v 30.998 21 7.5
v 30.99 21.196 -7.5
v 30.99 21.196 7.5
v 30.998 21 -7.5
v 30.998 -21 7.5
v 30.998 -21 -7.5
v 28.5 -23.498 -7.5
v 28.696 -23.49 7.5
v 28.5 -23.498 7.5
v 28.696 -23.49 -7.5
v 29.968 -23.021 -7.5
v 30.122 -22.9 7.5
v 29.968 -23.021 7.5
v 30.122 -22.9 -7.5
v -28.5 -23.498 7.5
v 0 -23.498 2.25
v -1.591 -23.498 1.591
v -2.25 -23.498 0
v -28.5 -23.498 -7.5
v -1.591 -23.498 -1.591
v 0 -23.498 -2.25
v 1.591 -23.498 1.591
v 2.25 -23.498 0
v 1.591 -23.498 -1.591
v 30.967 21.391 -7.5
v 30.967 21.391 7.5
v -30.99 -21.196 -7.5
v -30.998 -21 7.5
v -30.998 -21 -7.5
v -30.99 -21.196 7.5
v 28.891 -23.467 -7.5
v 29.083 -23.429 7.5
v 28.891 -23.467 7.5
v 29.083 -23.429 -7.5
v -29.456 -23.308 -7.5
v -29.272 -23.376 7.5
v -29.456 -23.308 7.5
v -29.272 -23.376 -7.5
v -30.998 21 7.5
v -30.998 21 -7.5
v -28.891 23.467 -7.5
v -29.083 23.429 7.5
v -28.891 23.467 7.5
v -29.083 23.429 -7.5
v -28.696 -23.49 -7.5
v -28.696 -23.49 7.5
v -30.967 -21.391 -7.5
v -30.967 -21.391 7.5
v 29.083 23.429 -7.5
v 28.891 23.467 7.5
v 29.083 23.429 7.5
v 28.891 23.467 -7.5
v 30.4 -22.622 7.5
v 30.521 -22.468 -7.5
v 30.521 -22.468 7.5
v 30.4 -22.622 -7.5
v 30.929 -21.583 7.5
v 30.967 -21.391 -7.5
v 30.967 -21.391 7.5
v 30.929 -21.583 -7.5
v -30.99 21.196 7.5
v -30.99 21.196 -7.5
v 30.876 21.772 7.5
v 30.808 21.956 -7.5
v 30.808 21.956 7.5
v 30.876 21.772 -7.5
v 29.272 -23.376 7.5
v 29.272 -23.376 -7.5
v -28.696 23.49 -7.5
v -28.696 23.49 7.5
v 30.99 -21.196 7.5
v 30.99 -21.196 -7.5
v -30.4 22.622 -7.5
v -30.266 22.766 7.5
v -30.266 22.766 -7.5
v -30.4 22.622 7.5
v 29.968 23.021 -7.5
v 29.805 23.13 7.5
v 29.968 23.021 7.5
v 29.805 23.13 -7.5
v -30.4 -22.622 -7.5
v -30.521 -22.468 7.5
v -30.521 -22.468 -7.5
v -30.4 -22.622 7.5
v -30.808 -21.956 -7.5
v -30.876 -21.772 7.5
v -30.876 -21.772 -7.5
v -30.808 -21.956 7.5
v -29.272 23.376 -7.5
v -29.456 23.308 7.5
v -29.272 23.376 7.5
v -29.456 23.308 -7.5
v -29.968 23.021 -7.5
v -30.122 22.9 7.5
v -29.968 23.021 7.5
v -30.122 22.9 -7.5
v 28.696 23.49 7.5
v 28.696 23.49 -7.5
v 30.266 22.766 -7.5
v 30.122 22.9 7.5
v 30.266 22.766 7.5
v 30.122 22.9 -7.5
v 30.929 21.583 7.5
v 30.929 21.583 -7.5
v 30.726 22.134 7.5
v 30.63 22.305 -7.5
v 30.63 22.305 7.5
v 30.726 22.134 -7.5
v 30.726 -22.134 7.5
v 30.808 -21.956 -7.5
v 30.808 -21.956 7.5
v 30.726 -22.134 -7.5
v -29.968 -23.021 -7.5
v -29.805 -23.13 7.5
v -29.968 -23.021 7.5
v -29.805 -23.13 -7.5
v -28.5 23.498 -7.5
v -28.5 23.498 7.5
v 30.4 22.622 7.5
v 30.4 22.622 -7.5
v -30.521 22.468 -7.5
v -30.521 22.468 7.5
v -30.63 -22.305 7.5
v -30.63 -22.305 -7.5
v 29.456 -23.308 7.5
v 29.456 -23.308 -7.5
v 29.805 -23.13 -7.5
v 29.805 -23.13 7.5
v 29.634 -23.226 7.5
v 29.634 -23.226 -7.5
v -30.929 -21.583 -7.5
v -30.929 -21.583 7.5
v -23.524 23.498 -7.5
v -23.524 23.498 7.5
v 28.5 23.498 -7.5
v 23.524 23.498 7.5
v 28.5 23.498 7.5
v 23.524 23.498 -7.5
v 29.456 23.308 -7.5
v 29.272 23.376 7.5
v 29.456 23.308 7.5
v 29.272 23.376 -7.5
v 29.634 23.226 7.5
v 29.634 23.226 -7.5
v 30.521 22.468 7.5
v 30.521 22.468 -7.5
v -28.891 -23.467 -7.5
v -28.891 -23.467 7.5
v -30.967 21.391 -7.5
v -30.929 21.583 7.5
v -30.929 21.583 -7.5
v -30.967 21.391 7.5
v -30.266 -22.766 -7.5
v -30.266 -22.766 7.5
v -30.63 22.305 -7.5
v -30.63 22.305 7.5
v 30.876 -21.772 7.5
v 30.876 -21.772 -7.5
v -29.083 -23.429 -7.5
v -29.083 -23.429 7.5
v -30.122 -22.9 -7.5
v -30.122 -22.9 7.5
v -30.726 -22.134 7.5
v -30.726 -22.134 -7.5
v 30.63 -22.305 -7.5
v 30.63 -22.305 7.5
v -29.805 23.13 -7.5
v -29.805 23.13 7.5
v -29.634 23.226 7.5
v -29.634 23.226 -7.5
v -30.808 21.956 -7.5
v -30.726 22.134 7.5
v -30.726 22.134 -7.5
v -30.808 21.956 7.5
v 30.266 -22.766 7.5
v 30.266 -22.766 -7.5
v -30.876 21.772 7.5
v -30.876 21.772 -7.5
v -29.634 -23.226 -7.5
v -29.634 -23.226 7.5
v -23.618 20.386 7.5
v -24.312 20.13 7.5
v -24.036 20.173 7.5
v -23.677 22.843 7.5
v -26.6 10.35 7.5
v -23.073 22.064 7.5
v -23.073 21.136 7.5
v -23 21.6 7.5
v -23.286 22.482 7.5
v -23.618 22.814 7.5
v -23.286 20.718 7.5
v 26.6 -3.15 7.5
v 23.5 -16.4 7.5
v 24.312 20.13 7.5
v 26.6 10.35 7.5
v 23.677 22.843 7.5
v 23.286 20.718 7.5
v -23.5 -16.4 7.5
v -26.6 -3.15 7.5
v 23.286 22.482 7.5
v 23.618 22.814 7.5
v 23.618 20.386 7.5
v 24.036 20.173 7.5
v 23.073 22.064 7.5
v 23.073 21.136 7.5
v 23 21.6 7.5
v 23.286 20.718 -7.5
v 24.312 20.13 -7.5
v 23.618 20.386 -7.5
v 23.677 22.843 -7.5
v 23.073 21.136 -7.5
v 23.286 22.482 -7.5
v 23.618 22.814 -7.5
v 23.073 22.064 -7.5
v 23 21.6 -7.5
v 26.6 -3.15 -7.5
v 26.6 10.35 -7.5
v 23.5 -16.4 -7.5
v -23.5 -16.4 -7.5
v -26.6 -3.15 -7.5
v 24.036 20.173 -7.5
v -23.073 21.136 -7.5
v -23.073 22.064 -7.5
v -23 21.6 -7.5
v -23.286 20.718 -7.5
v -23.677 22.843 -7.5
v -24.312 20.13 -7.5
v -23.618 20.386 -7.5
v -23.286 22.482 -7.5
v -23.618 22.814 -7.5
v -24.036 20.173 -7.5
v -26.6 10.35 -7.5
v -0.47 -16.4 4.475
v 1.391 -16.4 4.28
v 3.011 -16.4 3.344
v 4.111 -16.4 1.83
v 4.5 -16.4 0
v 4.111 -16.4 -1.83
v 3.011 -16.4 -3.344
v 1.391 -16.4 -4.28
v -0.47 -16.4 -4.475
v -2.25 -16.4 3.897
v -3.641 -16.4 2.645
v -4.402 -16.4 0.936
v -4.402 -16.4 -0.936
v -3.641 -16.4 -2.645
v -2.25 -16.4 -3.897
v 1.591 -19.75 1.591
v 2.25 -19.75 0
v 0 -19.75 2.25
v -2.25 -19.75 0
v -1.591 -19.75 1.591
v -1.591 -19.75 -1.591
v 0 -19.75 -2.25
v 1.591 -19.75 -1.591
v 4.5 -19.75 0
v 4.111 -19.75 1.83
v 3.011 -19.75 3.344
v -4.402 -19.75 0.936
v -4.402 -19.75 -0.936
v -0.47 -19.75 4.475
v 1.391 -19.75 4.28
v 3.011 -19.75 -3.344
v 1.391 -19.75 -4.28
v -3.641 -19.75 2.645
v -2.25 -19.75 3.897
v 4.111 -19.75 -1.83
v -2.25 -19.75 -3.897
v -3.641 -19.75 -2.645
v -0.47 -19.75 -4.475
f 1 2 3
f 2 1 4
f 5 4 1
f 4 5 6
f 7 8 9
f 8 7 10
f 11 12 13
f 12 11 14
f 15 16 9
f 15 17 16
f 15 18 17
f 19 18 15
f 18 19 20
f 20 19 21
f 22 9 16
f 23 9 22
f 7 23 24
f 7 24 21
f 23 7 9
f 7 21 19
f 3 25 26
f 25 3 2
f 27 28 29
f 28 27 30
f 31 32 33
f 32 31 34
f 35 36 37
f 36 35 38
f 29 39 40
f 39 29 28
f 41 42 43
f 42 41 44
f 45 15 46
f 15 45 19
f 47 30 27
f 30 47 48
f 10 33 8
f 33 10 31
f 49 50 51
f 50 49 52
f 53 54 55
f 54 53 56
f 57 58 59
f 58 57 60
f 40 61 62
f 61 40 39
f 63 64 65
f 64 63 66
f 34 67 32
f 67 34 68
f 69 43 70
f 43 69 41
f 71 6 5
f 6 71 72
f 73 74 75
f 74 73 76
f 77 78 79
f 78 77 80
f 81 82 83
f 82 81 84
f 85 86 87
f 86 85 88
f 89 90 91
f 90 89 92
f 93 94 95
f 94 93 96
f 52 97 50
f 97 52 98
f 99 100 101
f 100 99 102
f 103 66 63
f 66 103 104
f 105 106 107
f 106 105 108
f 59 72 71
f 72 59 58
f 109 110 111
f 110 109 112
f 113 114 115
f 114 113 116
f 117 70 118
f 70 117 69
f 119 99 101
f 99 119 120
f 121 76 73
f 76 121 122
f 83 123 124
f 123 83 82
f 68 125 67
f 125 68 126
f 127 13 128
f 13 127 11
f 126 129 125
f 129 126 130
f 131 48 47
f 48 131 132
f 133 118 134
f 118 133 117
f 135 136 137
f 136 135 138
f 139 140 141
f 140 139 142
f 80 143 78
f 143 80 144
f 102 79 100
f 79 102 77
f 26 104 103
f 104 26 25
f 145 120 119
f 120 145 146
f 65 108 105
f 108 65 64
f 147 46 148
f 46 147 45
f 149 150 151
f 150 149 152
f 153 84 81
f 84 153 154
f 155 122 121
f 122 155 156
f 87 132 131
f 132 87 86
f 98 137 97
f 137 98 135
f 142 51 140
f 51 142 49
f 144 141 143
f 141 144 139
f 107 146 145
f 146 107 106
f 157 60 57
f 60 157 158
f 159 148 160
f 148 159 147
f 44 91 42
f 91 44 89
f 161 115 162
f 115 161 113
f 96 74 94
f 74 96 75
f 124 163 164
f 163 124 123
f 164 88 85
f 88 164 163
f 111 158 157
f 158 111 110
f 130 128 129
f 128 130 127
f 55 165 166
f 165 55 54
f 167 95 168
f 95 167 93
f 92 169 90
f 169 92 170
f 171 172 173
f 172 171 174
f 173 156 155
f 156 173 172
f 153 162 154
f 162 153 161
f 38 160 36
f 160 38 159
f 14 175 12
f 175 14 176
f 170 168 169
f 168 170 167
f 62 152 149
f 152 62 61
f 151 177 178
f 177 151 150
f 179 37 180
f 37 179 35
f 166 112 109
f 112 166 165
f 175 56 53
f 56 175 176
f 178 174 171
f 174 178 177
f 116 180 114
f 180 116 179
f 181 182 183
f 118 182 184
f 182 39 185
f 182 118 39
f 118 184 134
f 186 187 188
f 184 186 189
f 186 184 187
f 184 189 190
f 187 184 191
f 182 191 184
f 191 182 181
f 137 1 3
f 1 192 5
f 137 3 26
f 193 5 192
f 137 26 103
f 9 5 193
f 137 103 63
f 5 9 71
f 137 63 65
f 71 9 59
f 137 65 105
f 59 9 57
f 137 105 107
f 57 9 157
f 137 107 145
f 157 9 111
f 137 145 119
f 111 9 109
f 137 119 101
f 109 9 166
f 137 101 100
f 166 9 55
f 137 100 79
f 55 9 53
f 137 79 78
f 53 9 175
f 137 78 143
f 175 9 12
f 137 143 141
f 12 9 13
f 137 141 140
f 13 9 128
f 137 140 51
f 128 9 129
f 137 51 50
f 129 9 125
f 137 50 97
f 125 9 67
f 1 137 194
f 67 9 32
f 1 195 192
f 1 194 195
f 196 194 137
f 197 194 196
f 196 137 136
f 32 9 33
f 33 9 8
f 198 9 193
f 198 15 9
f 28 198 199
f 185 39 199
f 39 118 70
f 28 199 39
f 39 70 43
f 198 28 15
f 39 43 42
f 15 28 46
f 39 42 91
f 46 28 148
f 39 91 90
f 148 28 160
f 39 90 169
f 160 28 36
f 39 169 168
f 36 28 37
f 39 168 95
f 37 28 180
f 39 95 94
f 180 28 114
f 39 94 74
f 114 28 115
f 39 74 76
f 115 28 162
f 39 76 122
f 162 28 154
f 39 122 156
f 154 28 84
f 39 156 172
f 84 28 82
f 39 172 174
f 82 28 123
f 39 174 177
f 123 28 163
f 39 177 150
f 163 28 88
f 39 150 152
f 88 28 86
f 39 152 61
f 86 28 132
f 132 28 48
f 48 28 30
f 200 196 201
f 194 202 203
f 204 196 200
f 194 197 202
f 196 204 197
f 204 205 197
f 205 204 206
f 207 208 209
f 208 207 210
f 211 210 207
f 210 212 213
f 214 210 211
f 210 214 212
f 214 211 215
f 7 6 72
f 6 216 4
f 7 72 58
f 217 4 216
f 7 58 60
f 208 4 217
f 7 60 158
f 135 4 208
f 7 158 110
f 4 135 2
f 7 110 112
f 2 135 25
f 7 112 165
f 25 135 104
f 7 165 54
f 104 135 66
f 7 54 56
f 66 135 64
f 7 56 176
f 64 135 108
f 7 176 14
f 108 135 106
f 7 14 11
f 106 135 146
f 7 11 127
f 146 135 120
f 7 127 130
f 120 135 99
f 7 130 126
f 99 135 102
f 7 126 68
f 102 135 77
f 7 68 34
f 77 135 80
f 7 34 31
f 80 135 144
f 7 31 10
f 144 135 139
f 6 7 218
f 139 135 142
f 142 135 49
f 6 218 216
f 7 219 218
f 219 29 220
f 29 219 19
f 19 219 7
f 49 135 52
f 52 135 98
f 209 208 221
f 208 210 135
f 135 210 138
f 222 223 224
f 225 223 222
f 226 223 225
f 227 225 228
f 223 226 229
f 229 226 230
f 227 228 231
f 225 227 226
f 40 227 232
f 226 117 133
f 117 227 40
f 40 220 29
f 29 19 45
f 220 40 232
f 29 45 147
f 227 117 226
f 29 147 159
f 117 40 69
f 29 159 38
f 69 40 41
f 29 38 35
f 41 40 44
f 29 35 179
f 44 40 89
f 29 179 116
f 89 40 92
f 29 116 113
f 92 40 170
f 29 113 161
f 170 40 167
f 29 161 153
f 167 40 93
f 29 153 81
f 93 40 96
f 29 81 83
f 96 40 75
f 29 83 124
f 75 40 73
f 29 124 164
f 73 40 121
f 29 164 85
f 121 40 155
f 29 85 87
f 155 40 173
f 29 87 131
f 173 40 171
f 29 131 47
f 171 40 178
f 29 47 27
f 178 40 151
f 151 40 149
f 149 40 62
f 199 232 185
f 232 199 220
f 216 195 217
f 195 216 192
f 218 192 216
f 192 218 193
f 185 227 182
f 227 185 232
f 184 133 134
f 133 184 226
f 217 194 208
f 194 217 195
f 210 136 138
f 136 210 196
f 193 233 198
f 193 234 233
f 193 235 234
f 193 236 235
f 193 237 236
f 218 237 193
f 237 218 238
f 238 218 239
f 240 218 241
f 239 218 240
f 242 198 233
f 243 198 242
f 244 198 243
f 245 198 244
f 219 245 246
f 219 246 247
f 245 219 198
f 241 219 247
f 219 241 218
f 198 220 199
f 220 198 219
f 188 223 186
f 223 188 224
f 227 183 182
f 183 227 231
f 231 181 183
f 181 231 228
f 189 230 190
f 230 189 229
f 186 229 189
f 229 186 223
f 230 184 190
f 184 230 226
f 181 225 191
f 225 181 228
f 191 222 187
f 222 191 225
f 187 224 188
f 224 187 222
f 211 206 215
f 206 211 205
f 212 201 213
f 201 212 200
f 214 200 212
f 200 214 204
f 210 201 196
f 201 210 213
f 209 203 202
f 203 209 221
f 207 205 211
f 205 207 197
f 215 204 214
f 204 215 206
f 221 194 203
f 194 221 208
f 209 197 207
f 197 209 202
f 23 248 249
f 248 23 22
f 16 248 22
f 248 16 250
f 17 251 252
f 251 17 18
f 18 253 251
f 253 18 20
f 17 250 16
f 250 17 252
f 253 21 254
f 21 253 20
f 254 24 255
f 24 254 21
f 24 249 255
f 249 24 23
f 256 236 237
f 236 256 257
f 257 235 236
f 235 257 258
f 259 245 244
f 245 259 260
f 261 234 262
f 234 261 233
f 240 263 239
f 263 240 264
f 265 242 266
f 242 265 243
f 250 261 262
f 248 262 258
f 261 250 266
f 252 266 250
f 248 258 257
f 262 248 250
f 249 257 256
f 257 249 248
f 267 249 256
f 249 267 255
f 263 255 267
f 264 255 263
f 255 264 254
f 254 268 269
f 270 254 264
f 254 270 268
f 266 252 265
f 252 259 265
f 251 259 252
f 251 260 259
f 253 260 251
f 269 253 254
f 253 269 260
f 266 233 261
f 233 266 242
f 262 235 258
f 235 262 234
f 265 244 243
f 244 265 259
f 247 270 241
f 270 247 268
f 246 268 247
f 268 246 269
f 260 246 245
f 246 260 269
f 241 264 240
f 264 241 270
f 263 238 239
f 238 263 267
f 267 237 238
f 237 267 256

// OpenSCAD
// file: ../Dollo/NEW_long_ties/globals.scad
/*
Most things in this file is represented as one millimeter, so keep that in mind while changing things.
Some of the setting are not mm but at variables that you can set, such as 2*x=2x and you are setting what x is.
I will try to specify when things are variables and not exact measurements.
*/

// printer slop
slop = 0.15;

obj_leg = 30;
leg_length = 5.5;
small_number = 0.001;
metal_core_rode_global = 5;


///////////////// number of holes /////////////////////
z_hole_number = 8;
other_holes = 8;

///////////////// Pins /////////////////////

//pins that poke out
ball_size = 10;
pin_height = 20;
pin_diameter = 6;


//holes
hole_ball_size = ball_size;
hole_pin_height = pin_height;
hole_pin_diameter = pin_diameter;

///////////////// Z THINGS /////////////////////

berring_slot_width = 7.5;
berring_slot_depth = 6.5;
metal_core_rode = 5;

///////////////// X THINGS /////////////////////

//male dove tails
male_dove_max_width=8;
male_dove_min_width=5;
male_dove_depth=5;
male_dove_height=obj_leg/2;

function scaled_male_dove_max_width() = male_dove_max_width - slop;
function scaled_male_dove_min_width() = male_dove_min_width - slop;
function scaled_male_dove_depth() = male_dove_depth - slop;

//female dove tails, this is found on the y mounts
girl_max_width=11;
girl_min_width=5;
girl_depth=5;
girl_height=obj_leg;


///////////////// Y THINGS /////////////////////
/*
The Y is so normal that all of those global variables at the top should change all of the setting in it, this section is set her incase there are variables set in the future development of this project.
*/

// stepper
motor_side_length = 43.2;
motor_bolt_hole_distance = 31;
motor_center_hole = 23;
motor_shaft_dia = 5;
motor_shaft_hole_dia = 5+2*slop;

// bolts etc.
bolt_hole_dia = 3+2*slop;
bolt_head_hole_dia = 5.8;

m4_bolt_hole_dia = 4+2*slop;
m4_bolt_head_hole_dia = 6.8+2*slop;


m3_nut_side = 5.65;
m3_nut_height = 2.3;
m4_nut_side = 6.85;
m4_nut_height = 3.1;

// threaded rod
lifter_rod_diam = 9.86;
hole_threaded_rod = lifter_rod_diam+2*slop;

// for the extensions
metal_rod_size = 9;
// main file
use <../Dollo/NEW_long_ties/include.scad>;

module _form(h=15) {
    hull() {
        cube([53.2,13.5,h],center=true);
        cube([47,40,h],center=true);
    }
}

difference() {
    rounded_cube_side(62,47,15,5,center=true,$fn=80);

    translate([0,7/2+0.1,0])
    difference() {
        _form(16);

        translate([-47/2-1,40/2-2,0])
        cylinder(d=3,h=17,center=true,$fn=20);

        translate([47/2+1,40/2-2,0])
        cylinder(d=3,h=17,center=true,$fn=20);
    }

    rotate([90,0,0])
    cylinder(d=4.5,h=60,center=true);

    rotate([90,0,0])
    cylinder(d=9,h=39.5,center=true);

}
